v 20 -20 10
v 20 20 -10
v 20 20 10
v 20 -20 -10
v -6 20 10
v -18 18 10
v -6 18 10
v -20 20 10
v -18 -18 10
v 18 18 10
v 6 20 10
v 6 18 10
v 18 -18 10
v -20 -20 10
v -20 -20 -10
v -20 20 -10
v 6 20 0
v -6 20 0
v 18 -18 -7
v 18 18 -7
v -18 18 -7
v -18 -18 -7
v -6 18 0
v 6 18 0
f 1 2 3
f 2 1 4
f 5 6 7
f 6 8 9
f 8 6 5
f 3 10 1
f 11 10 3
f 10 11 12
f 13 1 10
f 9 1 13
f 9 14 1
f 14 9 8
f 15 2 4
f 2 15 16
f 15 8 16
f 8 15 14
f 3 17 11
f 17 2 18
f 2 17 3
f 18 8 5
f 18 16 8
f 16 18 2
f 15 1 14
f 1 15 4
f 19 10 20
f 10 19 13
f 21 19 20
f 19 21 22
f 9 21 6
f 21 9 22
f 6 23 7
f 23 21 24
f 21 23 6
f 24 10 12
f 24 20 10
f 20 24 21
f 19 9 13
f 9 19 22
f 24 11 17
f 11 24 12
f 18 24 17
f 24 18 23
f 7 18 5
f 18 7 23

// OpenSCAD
OUTER_WIDTH = 40;
WALL_THICKNESS = 2;

inner_width = OUTER_WIDTH -(WALL_THICKNESS*2);
difference(){
    difference(){
        cube([OUTER_WIDTH,OUTER_WIDTH,OUTER_WIDTH/2],center=true);
        translate([0,0,WALL_THICKNESS]){
            cube([inner_width,inner_width,inner_width/2],center=true);
        }
    }
    translate([0,OUTER_WIDTH/2,(OUTER_WIDTH/2)-10]){
        cube([12,5,20],center=true);
    }
}
